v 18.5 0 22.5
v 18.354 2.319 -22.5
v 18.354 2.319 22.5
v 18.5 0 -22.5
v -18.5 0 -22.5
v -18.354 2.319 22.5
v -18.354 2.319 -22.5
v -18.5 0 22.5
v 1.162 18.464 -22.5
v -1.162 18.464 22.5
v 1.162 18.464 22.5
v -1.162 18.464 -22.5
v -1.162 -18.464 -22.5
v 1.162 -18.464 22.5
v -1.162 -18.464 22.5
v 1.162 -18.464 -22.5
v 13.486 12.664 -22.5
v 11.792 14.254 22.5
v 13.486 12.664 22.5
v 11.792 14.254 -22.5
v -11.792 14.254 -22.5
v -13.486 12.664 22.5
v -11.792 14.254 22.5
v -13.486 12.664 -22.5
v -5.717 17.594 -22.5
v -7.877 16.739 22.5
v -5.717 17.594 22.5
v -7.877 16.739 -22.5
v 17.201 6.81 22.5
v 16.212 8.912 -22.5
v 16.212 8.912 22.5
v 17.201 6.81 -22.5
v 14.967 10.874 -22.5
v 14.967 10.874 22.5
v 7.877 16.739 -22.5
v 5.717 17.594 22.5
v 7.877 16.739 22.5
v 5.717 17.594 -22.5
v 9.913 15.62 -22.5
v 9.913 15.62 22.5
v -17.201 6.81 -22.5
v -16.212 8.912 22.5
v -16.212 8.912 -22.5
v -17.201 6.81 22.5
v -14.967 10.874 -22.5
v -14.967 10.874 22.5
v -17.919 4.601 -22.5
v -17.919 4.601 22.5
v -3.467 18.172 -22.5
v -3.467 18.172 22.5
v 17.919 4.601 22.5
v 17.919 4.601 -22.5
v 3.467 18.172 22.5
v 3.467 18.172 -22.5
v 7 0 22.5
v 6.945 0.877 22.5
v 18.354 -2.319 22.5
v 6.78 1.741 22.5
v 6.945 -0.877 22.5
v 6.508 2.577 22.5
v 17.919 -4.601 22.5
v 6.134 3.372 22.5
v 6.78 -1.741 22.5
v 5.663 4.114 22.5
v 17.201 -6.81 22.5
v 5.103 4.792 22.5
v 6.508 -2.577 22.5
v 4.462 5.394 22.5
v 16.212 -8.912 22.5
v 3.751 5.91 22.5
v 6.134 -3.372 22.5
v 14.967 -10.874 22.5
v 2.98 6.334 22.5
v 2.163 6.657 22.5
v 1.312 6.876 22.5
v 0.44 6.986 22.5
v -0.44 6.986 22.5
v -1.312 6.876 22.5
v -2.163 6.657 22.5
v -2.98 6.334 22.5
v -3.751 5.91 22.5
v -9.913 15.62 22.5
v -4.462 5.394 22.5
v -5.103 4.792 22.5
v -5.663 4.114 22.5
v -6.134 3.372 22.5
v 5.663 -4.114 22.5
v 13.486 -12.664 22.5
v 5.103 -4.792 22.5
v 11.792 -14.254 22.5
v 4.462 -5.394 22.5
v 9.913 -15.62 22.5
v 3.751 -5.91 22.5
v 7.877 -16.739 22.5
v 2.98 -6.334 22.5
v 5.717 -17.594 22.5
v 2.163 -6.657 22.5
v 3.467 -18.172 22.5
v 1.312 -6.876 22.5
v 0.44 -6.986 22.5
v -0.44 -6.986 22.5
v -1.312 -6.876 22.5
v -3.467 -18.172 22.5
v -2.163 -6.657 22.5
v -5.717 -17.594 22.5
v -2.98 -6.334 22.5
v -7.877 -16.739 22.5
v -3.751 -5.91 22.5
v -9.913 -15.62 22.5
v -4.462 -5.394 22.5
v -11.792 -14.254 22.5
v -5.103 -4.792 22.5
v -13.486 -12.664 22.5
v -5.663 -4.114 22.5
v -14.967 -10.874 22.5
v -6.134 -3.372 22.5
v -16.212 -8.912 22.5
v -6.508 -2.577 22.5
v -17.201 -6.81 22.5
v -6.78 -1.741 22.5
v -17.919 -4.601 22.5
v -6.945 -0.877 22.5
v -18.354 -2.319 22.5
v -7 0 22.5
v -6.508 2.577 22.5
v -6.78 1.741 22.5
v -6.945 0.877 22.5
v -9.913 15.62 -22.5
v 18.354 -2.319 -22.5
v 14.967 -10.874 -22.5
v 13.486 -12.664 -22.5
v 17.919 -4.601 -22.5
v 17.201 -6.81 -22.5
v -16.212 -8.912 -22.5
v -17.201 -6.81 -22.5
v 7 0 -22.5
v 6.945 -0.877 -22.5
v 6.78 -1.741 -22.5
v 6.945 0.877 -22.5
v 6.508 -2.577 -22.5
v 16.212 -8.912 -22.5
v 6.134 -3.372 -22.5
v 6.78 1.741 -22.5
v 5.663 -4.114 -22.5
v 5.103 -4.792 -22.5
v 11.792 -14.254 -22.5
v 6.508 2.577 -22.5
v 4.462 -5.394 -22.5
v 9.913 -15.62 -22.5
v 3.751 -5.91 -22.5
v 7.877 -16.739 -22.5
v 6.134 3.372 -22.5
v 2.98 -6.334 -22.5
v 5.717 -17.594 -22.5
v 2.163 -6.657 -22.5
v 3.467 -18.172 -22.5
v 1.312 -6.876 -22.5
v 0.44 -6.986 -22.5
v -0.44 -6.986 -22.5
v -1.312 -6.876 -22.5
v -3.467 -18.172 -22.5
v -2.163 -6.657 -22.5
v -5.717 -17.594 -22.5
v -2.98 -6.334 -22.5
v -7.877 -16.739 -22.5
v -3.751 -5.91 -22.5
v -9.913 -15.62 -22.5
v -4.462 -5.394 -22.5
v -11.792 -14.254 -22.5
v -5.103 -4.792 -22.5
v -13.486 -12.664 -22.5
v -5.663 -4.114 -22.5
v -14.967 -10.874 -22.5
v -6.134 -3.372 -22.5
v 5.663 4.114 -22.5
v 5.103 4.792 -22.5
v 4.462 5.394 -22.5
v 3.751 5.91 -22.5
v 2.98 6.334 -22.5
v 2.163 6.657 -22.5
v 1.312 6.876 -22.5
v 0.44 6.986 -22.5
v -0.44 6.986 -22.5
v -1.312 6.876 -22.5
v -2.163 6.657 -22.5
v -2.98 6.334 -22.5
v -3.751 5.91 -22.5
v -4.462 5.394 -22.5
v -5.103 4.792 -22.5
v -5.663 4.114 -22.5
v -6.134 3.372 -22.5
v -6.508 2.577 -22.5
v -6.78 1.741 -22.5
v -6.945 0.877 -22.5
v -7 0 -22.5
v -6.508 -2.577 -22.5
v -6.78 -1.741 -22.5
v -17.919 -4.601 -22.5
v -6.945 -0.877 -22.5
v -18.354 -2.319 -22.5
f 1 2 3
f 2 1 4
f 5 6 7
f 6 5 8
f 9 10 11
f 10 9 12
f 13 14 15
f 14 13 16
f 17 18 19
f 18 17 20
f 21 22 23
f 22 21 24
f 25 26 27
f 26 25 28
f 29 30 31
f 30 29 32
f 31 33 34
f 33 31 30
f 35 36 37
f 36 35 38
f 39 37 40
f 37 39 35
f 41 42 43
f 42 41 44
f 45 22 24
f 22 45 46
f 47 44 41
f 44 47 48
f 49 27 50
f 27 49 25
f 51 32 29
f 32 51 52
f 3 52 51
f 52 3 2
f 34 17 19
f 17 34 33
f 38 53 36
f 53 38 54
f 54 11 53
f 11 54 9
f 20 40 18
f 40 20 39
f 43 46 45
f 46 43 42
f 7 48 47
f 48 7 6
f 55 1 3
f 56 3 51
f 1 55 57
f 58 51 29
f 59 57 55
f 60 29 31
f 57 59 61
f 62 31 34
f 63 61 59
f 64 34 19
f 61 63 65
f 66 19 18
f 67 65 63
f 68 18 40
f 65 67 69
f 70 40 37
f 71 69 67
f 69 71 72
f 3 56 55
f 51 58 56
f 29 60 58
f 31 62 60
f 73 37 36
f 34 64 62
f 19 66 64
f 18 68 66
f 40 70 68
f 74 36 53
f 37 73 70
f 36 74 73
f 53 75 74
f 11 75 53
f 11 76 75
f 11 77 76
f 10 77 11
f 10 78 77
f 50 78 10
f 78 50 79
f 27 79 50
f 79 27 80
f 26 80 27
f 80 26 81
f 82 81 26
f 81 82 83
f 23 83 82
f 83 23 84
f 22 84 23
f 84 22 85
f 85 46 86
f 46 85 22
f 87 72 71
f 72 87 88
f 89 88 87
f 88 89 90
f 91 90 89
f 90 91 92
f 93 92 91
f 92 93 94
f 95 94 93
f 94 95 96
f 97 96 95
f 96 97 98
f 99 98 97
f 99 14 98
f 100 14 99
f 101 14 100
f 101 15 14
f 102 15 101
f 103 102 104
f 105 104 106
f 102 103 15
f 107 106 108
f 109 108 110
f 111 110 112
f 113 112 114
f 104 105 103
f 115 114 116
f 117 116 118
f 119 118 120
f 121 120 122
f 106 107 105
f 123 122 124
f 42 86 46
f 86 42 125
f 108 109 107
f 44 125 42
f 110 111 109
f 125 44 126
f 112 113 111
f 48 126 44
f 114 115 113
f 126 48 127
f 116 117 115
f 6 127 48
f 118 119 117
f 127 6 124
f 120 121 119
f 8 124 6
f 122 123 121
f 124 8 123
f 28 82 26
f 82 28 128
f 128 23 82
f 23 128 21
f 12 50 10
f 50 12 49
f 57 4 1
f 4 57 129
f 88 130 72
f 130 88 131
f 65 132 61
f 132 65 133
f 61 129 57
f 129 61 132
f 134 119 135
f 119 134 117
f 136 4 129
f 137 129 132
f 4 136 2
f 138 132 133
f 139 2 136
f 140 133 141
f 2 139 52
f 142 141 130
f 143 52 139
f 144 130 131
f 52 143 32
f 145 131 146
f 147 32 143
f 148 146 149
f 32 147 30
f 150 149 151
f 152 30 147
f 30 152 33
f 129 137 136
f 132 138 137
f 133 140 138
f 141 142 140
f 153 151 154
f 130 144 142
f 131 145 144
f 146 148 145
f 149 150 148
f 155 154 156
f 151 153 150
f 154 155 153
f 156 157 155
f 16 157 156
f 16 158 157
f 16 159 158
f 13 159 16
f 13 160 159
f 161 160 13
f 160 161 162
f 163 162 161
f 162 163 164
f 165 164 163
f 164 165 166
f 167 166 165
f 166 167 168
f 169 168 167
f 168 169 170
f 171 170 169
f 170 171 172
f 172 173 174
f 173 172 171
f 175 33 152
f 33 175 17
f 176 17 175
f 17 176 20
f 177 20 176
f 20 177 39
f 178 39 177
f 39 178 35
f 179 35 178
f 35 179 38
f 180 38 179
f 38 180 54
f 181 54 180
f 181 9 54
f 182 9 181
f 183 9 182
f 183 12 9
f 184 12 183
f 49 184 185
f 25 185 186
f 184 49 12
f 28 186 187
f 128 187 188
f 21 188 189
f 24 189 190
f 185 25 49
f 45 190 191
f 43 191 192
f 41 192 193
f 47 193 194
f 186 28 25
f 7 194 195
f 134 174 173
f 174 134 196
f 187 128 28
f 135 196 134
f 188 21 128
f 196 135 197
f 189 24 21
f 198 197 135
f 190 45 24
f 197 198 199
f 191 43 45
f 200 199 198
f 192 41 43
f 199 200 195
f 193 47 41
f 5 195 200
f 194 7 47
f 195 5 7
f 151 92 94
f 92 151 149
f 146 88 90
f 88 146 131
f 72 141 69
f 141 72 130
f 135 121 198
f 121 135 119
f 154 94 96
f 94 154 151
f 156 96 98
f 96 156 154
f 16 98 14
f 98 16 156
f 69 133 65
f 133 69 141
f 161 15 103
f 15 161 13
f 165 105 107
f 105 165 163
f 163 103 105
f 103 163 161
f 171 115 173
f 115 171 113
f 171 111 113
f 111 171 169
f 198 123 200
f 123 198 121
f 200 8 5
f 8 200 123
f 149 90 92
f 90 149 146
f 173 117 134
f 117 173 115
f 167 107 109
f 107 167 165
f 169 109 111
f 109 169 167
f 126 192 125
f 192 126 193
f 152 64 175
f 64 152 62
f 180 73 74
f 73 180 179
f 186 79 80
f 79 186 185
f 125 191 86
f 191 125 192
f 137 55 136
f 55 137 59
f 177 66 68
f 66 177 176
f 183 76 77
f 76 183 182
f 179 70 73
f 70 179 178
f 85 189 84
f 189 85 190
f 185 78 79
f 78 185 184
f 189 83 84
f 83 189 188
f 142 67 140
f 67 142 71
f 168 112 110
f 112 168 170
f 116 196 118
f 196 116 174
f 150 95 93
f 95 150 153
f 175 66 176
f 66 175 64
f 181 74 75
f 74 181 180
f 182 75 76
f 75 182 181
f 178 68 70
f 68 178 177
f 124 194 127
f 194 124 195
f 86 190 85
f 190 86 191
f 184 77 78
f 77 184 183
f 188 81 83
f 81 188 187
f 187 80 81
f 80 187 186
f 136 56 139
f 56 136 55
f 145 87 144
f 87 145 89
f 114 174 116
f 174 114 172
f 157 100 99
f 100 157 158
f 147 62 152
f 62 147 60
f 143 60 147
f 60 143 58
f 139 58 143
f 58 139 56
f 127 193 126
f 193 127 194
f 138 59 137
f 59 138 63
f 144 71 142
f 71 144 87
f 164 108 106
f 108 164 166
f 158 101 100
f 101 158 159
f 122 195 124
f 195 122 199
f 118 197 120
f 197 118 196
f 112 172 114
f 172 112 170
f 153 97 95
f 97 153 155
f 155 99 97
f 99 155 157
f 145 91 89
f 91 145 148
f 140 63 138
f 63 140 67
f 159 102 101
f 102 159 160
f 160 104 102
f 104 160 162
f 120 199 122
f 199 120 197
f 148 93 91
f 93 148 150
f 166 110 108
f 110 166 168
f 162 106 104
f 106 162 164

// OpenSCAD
$fn = 50;


difference() {
	union() {
		translate(v = [0, 0, -22.5000000000]) {
			cylinder(h = 45, r = 18.5000000000);
		}
	}
	union() {
		translate(v = [0, 0, -100.0000000000]) {
			cylinder(h = 200, r = 7);
		}
	}
}
